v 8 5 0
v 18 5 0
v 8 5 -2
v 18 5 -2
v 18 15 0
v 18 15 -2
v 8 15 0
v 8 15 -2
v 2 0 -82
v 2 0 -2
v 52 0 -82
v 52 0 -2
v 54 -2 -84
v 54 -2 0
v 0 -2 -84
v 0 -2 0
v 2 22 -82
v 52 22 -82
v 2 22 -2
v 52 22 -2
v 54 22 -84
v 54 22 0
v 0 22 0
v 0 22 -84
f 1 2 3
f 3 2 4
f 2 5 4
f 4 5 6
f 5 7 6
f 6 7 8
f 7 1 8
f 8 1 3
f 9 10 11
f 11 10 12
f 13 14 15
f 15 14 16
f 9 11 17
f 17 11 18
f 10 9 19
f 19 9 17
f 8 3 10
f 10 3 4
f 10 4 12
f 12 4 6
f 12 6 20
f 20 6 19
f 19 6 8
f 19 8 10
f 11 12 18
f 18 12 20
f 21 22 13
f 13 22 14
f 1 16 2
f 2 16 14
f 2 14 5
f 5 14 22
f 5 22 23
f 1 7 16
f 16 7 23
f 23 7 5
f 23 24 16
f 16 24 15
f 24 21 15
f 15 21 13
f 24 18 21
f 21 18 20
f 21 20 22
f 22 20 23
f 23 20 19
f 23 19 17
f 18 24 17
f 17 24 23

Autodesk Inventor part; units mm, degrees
ref_plane "YZ Plane" through (0, 0, 0) normal (1, 0, 0) x (0, 1, 0)
ref_plane "XZ Plane" through (0, 0, 0) normal (0, 1, 0) x (-1, 0, 0)
ref_plane "XY Plane" through (0, 0, 0) normal (0, 0, 1) x (1, 0, 0)
sketch "스케치1" plane through (0, 0, 0) normal (0, 1, 0) x (-1, 0, 0)
  line L0 (0, 0) -> (-54, 0)
  line L1 (-54, 0) -> (-54, -84)
  line L2 (-54, -84) -> (0, -84)
  line L3 (0, -84) -> (0, 0)
  line L4 (0, 0) -> (0, -2)
  line L5 (0, -2) -> (-2, -2)
  line L6 (-54, -84) -> (-54, -82)
  line L7 (-54, -82) -> (-52, -82)
  line L8 (-2, -2) -> (-52, -2)
  line L9 (-52, -2) -> (-52, -82)
  line L10 (-52, -82) -> (-2, -82)
  line L11 (-2, -82) -> (-2, -2)
  dimension "d0" = 54
  dimension "d1" = 84
  dimension "d2" = 2
  dimension "d3" = 2
  dimension "d4" = 2
  dimension "d5" = 2
extrude "돌출1" add sketch "스케치1" along normal blind 22 contours L3 L5 L8 L9 L7 L1 L0 | L3 L2 L1 L7 L10 L11 L5
extrude "돌출2" add sketch "스케치1" against normal blind 2
sketch "스케치2" plane through (0, 22, 0) normal (0, 0, 1) x (1, 0, 0)
  line L0 (0, -22) -> (7, -22)
  line L1 (0, -22) -> (7, -22) construction
  line L2 (7, -22) -> (8, -22)
  line L3 (8, -22) -> (8, -7)
  line L4 (8, -7) -> (18, -7)
  line L5 (18, -7) -> (18, -22)
  line L6 (18, -22) -> (8, -22)
  line L7 (8, -22) -> (18, -22)
  line L8 (18, -22) -> (18, -17)
  line L9 (18, -17) -> (8, -17)
  line L10 (8, -17) -> (8, -22)
  point P0 (8, -17)
  dimension "d10" = 7
  dimension "d11" = 0
  dimension "d12" = 1
  dimension "d13" = 15
  dimension "d14" = 10
  dimension "d15" = 5
extrude "돌출3" cut sketch "스케치2" against normal blind 2 contours L3 L4 L5 L9
properties part number "case"
